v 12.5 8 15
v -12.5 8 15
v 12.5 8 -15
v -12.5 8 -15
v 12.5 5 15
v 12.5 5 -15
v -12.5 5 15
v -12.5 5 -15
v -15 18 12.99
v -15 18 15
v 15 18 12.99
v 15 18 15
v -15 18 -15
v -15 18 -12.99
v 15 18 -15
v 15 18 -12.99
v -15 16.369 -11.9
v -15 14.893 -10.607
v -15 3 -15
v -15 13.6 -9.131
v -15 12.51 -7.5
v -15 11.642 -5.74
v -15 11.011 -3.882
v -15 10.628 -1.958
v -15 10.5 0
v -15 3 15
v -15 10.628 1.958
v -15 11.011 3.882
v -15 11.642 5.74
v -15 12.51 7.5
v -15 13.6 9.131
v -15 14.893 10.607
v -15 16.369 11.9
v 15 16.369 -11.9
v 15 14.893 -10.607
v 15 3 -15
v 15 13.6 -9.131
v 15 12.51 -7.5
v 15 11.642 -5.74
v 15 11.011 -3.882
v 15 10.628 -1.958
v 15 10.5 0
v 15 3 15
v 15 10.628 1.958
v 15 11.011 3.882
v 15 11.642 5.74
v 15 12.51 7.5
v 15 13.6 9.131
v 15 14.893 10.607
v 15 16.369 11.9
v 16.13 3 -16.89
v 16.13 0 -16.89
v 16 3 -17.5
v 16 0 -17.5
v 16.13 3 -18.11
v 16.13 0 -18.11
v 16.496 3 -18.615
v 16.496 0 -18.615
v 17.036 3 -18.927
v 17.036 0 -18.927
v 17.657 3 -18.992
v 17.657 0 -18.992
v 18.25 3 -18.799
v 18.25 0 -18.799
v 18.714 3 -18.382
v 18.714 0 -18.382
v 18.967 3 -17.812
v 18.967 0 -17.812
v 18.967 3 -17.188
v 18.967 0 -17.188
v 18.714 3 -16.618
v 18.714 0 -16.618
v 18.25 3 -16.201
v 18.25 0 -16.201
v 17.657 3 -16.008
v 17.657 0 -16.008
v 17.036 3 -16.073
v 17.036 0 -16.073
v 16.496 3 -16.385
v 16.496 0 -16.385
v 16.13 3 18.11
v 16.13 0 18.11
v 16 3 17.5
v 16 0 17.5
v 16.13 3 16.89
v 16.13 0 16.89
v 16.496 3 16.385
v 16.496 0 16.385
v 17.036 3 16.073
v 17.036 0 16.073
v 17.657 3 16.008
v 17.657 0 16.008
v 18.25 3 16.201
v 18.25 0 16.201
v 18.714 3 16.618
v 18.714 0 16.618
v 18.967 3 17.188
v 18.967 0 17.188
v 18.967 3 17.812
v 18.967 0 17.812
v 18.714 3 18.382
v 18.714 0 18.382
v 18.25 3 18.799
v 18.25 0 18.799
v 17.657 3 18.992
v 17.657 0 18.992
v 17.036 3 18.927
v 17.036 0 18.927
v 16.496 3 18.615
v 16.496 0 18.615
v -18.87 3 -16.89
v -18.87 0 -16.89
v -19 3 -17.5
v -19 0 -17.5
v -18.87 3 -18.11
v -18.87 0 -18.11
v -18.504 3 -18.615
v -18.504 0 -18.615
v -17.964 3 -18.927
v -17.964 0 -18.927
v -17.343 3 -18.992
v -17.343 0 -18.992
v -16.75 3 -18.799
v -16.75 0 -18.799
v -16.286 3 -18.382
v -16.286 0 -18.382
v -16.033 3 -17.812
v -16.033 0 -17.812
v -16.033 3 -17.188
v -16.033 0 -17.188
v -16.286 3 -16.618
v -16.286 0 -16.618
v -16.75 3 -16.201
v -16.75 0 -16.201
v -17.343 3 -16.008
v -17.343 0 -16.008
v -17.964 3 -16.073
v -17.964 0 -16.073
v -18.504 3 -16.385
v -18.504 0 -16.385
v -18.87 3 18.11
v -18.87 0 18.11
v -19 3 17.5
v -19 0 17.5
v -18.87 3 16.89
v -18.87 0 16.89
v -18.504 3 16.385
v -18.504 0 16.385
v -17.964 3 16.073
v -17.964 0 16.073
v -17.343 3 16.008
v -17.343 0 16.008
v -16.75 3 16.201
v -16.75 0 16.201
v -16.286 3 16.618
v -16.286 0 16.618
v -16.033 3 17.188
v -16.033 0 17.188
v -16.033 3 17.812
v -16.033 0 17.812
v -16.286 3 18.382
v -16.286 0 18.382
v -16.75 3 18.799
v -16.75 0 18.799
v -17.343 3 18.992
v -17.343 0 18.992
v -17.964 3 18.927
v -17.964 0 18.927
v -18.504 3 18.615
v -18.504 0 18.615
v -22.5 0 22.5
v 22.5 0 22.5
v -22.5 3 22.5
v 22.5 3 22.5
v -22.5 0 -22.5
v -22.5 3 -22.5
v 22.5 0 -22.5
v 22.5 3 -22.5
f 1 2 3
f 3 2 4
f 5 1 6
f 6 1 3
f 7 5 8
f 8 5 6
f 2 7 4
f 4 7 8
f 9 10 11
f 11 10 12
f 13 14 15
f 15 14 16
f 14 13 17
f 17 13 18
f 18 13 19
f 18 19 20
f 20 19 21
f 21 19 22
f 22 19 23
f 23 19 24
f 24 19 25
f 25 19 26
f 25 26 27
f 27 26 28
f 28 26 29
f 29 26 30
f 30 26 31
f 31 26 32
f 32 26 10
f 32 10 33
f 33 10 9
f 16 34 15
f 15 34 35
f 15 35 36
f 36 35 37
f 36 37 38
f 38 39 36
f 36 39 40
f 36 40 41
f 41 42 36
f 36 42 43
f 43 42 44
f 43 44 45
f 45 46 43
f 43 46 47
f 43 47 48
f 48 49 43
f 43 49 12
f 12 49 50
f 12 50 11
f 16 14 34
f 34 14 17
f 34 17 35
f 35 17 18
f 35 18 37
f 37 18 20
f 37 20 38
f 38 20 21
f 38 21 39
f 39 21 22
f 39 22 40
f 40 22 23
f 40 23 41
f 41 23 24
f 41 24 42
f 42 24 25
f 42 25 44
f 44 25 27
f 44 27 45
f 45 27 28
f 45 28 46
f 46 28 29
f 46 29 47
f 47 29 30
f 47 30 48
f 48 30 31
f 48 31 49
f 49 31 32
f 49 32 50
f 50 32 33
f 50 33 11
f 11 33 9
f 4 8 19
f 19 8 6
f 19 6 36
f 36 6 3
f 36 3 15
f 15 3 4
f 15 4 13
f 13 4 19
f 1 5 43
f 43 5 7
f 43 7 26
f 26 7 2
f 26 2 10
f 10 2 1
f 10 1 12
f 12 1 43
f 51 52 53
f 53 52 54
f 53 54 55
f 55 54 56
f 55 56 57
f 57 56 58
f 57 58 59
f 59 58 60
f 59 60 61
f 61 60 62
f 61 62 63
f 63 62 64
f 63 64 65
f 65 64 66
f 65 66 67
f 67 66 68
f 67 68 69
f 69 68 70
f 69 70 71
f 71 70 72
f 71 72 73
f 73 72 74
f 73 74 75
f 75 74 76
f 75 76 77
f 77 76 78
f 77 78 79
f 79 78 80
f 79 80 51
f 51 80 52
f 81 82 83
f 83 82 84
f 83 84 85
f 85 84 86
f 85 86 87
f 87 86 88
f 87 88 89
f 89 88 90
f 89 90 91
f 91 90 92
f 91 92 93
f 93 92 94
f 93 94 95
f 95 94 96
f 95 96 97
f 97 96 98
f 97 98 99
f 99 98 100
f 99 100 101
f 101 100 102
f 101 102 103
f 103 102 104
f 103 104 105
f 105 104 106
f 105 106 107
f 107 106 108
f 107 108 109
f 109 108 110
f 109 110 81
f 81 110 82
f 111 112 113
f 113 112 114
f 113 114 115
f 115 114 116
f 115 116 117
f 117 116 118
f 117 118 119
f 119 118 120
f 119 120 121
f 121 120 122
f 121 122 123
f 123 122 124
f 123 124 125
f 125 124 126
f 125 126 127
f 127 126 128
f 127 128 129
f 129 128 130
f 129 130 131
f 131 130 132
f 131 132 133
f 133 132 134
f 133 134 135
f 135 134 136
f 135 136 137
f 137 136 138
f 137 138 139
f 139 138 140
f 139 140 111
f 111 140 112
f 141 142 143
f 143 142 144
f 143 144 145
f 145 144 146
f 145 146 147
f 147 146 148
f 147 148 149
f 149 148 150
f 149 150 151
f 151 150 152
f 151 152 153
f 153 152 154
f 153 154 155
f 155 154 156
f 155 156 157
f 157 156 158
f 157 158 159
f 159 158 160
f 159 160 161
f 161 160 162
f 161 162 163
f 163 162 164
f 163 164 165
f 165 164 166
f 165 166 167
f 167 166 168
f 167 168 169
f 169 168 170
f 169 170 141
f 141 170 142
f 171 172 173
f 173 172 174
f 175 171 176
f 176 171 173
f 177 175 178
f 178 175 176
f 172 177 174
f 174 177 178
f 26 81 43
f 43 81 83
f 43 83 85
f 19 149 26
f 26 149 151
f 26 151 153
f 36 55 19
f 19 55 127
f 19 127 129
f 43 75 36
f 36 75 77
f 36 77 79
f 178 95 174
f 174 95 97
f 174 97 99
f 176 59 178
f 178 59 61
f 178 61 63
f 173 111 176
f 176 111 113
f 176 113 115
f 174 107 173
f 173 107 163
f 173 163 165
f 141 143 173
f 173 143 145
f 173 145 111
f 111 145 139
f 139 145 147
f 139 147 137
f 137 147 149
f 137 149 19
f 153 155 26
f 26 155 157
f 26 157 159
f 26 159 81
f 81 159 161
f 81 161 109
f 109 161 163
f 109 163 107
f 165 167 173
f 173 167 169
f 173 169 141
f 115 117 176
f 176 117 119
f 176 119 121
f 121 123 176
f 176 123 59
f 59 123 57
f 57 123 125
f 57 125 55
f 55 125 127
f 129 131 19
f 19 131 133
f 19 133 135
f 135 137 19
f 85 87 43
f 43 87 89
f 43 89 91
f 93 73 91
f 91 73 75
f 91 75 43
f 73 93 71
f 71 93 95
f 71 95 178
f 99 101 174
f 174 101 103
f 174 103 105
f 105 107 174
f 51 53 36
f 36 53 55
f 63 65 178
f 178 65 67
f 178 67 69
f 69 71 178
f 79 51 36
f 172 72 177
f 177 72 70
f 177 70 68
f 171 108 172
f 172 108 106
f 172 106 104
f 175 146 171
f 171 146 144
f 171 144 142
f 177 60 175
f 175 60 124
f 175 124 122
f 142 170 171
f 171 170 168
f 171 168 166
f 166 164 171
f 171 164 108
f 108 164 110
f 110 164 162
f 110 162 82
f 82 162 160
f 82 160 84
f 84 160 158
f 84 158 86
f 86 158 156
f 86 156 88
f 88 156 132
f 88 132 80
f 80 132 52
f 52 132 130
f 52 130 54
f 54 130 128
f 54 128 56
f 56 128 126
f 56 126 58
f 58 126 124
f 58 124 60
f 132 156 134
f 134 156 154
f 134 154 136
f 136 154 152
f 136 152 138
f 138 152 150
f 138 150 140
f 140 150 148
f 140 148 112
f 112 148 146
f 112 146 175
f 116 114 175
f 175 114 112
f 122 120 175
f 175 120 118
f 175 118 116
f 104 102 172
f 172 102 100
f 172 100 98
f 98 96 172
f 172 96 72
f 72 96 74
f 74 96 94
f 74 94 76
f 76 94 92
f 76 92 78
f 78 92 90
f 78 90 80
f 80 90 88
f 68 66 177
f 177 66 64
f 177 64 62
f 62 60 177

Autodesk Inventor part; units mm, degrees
ref_plane "YZ Plane" through (0, 0, 0) normal (1, 0, 0) x (0, 1, 0)
ref_plane "XZ Plane" through (0, 0, 0) normal (0, 1, 0) x (-1, 0, 0)
ref_plane "XY Plane" through (0, 0, 0) normal (0, 0, 1) x (1, 0, 0)
sketch "Skizze1" plane through (0, 0, 0) normal (0, 1, 0) x (-1, 0, 0)
  line L0 (22.5, 22.5) -> (-22.5, 22.5)
  line L1 (-22.5, 22.5) -> (-22.5, -22.5)
  line L2 (-22.5, -22.5) -> (22.5, -22.5)
  line L3 (22.5, -22.5) -> (22.5, 22.5)
  line L4 (17.5, 17.5) -> (-17.5, 17.5) construction
  line L5 (-17.5, 17.5) -> (-17.5, -17.5) construction
  line L6 (-17.5, -17.5) -> (17.5, -17.5) construction
  line L7 (17.5, -17.5) -> (17.5, 17.5) construction
  circle A0 centre (17.5, 17.5) radius 1.5
  circle A1 centre (17.5, -17.5) radius 1.5
  circle A2 centre (-17.5, 17.5) radius 1.5
  circle A3 centre (-17.5, -17.5) radius 1.5
  point P0 (0, 0)
  point P1 (0, 22.5)
  point P2 (22.5, 0)
  dimension "d0" = 45
  dimension "d1" = 5
  dimension "d2" = 35
  dimension "d3" = 3
extrude "Extrusion1" add sketch "Skizze1" along normal blind 3
sketch "Skizze2" plane through (0, 3, 0) normal (0, 1, 0) x (1, 0, 0)
  line L0 (-15, -15) -> (15, -15)
  line L1 (15, -15) -> (15, 15)
  line L2 (15, 15) -> (-15, 15)
  line L3 (-15, 15) -> (-15, -15)
  point P0 (0, 0)
  point P1 (0, -15)
  point P2 (-15, 0)
  dimension "d7" = 30
extrude "Extrusion2" add sketch "Skizze2" along normal blind 30
sketch "Skizze3" plane through (15, 3, 15) normal (1, 0, 0) x (0, 0, -1)
  circle A0 centre (15, 22.5) radius 15
  line L0 (-7.5, 0) -> (37.5, 0) construction
  line L1 (-7.5, -3) -> (37.5, -3) projected
  point P0 (15, -3)
  point P1 (15, -3)
  point P2 (15, 0)
  point P3 (15, 7.5)
  point P4 (15, 0)
  point P5 (15, -3)
  dimension "d10" = 30
  dimension "d18" = 7.5
extrude "Extrusion3" cut sketch "Skizze3" against normal through all
sketch "Skizze4" plane through (15, 3, -15) normal (1, 0, 0) x (0, 0, -1)
  line L0 (0, 30) -> (-30, 30)
  line L1 (-30, 30) -> (-30, 15)
  line L2 (-30, 15) -> (0, 15)
  line L3 (0, 15) -> (0, 30)
  arc A0 (-27.9904, 30) -> (-2.0096, 30) centre (-15, 22.5) ccw construction
  point P0 (-15, -3)
  point P1 (-15, 0)
  dimension "d24" = 15
extrude "Extrusion4" cut sketch "Skizze4" against normal through all
sketch "Skizze5" plane through (15, 3, -15) normal (0, 0, -1) x (-1, 0, 0)
  line L0 (27.5, 5) -> (2.5, 5)
  line L1 (2.5, 5) -> (2.5, 2)
  line L2 (2.5, 2) -> (27.5, 2)
  line L3 (27.5, 2) -> (27.5, 5)
  line L4 (-7.5, 0) -> (37.5, 0) construction
  point P0 (15, -3)
  point P1 (15, 2)
  dimension "d19" = 25
  dimension "d20" = 3
  dimension "d21" = 2
extrude "Extrusion5" cut sketch "Skizze5" against normal through all
properties part number "fastening-clip" material "PC/ABS-Kunststoff"
